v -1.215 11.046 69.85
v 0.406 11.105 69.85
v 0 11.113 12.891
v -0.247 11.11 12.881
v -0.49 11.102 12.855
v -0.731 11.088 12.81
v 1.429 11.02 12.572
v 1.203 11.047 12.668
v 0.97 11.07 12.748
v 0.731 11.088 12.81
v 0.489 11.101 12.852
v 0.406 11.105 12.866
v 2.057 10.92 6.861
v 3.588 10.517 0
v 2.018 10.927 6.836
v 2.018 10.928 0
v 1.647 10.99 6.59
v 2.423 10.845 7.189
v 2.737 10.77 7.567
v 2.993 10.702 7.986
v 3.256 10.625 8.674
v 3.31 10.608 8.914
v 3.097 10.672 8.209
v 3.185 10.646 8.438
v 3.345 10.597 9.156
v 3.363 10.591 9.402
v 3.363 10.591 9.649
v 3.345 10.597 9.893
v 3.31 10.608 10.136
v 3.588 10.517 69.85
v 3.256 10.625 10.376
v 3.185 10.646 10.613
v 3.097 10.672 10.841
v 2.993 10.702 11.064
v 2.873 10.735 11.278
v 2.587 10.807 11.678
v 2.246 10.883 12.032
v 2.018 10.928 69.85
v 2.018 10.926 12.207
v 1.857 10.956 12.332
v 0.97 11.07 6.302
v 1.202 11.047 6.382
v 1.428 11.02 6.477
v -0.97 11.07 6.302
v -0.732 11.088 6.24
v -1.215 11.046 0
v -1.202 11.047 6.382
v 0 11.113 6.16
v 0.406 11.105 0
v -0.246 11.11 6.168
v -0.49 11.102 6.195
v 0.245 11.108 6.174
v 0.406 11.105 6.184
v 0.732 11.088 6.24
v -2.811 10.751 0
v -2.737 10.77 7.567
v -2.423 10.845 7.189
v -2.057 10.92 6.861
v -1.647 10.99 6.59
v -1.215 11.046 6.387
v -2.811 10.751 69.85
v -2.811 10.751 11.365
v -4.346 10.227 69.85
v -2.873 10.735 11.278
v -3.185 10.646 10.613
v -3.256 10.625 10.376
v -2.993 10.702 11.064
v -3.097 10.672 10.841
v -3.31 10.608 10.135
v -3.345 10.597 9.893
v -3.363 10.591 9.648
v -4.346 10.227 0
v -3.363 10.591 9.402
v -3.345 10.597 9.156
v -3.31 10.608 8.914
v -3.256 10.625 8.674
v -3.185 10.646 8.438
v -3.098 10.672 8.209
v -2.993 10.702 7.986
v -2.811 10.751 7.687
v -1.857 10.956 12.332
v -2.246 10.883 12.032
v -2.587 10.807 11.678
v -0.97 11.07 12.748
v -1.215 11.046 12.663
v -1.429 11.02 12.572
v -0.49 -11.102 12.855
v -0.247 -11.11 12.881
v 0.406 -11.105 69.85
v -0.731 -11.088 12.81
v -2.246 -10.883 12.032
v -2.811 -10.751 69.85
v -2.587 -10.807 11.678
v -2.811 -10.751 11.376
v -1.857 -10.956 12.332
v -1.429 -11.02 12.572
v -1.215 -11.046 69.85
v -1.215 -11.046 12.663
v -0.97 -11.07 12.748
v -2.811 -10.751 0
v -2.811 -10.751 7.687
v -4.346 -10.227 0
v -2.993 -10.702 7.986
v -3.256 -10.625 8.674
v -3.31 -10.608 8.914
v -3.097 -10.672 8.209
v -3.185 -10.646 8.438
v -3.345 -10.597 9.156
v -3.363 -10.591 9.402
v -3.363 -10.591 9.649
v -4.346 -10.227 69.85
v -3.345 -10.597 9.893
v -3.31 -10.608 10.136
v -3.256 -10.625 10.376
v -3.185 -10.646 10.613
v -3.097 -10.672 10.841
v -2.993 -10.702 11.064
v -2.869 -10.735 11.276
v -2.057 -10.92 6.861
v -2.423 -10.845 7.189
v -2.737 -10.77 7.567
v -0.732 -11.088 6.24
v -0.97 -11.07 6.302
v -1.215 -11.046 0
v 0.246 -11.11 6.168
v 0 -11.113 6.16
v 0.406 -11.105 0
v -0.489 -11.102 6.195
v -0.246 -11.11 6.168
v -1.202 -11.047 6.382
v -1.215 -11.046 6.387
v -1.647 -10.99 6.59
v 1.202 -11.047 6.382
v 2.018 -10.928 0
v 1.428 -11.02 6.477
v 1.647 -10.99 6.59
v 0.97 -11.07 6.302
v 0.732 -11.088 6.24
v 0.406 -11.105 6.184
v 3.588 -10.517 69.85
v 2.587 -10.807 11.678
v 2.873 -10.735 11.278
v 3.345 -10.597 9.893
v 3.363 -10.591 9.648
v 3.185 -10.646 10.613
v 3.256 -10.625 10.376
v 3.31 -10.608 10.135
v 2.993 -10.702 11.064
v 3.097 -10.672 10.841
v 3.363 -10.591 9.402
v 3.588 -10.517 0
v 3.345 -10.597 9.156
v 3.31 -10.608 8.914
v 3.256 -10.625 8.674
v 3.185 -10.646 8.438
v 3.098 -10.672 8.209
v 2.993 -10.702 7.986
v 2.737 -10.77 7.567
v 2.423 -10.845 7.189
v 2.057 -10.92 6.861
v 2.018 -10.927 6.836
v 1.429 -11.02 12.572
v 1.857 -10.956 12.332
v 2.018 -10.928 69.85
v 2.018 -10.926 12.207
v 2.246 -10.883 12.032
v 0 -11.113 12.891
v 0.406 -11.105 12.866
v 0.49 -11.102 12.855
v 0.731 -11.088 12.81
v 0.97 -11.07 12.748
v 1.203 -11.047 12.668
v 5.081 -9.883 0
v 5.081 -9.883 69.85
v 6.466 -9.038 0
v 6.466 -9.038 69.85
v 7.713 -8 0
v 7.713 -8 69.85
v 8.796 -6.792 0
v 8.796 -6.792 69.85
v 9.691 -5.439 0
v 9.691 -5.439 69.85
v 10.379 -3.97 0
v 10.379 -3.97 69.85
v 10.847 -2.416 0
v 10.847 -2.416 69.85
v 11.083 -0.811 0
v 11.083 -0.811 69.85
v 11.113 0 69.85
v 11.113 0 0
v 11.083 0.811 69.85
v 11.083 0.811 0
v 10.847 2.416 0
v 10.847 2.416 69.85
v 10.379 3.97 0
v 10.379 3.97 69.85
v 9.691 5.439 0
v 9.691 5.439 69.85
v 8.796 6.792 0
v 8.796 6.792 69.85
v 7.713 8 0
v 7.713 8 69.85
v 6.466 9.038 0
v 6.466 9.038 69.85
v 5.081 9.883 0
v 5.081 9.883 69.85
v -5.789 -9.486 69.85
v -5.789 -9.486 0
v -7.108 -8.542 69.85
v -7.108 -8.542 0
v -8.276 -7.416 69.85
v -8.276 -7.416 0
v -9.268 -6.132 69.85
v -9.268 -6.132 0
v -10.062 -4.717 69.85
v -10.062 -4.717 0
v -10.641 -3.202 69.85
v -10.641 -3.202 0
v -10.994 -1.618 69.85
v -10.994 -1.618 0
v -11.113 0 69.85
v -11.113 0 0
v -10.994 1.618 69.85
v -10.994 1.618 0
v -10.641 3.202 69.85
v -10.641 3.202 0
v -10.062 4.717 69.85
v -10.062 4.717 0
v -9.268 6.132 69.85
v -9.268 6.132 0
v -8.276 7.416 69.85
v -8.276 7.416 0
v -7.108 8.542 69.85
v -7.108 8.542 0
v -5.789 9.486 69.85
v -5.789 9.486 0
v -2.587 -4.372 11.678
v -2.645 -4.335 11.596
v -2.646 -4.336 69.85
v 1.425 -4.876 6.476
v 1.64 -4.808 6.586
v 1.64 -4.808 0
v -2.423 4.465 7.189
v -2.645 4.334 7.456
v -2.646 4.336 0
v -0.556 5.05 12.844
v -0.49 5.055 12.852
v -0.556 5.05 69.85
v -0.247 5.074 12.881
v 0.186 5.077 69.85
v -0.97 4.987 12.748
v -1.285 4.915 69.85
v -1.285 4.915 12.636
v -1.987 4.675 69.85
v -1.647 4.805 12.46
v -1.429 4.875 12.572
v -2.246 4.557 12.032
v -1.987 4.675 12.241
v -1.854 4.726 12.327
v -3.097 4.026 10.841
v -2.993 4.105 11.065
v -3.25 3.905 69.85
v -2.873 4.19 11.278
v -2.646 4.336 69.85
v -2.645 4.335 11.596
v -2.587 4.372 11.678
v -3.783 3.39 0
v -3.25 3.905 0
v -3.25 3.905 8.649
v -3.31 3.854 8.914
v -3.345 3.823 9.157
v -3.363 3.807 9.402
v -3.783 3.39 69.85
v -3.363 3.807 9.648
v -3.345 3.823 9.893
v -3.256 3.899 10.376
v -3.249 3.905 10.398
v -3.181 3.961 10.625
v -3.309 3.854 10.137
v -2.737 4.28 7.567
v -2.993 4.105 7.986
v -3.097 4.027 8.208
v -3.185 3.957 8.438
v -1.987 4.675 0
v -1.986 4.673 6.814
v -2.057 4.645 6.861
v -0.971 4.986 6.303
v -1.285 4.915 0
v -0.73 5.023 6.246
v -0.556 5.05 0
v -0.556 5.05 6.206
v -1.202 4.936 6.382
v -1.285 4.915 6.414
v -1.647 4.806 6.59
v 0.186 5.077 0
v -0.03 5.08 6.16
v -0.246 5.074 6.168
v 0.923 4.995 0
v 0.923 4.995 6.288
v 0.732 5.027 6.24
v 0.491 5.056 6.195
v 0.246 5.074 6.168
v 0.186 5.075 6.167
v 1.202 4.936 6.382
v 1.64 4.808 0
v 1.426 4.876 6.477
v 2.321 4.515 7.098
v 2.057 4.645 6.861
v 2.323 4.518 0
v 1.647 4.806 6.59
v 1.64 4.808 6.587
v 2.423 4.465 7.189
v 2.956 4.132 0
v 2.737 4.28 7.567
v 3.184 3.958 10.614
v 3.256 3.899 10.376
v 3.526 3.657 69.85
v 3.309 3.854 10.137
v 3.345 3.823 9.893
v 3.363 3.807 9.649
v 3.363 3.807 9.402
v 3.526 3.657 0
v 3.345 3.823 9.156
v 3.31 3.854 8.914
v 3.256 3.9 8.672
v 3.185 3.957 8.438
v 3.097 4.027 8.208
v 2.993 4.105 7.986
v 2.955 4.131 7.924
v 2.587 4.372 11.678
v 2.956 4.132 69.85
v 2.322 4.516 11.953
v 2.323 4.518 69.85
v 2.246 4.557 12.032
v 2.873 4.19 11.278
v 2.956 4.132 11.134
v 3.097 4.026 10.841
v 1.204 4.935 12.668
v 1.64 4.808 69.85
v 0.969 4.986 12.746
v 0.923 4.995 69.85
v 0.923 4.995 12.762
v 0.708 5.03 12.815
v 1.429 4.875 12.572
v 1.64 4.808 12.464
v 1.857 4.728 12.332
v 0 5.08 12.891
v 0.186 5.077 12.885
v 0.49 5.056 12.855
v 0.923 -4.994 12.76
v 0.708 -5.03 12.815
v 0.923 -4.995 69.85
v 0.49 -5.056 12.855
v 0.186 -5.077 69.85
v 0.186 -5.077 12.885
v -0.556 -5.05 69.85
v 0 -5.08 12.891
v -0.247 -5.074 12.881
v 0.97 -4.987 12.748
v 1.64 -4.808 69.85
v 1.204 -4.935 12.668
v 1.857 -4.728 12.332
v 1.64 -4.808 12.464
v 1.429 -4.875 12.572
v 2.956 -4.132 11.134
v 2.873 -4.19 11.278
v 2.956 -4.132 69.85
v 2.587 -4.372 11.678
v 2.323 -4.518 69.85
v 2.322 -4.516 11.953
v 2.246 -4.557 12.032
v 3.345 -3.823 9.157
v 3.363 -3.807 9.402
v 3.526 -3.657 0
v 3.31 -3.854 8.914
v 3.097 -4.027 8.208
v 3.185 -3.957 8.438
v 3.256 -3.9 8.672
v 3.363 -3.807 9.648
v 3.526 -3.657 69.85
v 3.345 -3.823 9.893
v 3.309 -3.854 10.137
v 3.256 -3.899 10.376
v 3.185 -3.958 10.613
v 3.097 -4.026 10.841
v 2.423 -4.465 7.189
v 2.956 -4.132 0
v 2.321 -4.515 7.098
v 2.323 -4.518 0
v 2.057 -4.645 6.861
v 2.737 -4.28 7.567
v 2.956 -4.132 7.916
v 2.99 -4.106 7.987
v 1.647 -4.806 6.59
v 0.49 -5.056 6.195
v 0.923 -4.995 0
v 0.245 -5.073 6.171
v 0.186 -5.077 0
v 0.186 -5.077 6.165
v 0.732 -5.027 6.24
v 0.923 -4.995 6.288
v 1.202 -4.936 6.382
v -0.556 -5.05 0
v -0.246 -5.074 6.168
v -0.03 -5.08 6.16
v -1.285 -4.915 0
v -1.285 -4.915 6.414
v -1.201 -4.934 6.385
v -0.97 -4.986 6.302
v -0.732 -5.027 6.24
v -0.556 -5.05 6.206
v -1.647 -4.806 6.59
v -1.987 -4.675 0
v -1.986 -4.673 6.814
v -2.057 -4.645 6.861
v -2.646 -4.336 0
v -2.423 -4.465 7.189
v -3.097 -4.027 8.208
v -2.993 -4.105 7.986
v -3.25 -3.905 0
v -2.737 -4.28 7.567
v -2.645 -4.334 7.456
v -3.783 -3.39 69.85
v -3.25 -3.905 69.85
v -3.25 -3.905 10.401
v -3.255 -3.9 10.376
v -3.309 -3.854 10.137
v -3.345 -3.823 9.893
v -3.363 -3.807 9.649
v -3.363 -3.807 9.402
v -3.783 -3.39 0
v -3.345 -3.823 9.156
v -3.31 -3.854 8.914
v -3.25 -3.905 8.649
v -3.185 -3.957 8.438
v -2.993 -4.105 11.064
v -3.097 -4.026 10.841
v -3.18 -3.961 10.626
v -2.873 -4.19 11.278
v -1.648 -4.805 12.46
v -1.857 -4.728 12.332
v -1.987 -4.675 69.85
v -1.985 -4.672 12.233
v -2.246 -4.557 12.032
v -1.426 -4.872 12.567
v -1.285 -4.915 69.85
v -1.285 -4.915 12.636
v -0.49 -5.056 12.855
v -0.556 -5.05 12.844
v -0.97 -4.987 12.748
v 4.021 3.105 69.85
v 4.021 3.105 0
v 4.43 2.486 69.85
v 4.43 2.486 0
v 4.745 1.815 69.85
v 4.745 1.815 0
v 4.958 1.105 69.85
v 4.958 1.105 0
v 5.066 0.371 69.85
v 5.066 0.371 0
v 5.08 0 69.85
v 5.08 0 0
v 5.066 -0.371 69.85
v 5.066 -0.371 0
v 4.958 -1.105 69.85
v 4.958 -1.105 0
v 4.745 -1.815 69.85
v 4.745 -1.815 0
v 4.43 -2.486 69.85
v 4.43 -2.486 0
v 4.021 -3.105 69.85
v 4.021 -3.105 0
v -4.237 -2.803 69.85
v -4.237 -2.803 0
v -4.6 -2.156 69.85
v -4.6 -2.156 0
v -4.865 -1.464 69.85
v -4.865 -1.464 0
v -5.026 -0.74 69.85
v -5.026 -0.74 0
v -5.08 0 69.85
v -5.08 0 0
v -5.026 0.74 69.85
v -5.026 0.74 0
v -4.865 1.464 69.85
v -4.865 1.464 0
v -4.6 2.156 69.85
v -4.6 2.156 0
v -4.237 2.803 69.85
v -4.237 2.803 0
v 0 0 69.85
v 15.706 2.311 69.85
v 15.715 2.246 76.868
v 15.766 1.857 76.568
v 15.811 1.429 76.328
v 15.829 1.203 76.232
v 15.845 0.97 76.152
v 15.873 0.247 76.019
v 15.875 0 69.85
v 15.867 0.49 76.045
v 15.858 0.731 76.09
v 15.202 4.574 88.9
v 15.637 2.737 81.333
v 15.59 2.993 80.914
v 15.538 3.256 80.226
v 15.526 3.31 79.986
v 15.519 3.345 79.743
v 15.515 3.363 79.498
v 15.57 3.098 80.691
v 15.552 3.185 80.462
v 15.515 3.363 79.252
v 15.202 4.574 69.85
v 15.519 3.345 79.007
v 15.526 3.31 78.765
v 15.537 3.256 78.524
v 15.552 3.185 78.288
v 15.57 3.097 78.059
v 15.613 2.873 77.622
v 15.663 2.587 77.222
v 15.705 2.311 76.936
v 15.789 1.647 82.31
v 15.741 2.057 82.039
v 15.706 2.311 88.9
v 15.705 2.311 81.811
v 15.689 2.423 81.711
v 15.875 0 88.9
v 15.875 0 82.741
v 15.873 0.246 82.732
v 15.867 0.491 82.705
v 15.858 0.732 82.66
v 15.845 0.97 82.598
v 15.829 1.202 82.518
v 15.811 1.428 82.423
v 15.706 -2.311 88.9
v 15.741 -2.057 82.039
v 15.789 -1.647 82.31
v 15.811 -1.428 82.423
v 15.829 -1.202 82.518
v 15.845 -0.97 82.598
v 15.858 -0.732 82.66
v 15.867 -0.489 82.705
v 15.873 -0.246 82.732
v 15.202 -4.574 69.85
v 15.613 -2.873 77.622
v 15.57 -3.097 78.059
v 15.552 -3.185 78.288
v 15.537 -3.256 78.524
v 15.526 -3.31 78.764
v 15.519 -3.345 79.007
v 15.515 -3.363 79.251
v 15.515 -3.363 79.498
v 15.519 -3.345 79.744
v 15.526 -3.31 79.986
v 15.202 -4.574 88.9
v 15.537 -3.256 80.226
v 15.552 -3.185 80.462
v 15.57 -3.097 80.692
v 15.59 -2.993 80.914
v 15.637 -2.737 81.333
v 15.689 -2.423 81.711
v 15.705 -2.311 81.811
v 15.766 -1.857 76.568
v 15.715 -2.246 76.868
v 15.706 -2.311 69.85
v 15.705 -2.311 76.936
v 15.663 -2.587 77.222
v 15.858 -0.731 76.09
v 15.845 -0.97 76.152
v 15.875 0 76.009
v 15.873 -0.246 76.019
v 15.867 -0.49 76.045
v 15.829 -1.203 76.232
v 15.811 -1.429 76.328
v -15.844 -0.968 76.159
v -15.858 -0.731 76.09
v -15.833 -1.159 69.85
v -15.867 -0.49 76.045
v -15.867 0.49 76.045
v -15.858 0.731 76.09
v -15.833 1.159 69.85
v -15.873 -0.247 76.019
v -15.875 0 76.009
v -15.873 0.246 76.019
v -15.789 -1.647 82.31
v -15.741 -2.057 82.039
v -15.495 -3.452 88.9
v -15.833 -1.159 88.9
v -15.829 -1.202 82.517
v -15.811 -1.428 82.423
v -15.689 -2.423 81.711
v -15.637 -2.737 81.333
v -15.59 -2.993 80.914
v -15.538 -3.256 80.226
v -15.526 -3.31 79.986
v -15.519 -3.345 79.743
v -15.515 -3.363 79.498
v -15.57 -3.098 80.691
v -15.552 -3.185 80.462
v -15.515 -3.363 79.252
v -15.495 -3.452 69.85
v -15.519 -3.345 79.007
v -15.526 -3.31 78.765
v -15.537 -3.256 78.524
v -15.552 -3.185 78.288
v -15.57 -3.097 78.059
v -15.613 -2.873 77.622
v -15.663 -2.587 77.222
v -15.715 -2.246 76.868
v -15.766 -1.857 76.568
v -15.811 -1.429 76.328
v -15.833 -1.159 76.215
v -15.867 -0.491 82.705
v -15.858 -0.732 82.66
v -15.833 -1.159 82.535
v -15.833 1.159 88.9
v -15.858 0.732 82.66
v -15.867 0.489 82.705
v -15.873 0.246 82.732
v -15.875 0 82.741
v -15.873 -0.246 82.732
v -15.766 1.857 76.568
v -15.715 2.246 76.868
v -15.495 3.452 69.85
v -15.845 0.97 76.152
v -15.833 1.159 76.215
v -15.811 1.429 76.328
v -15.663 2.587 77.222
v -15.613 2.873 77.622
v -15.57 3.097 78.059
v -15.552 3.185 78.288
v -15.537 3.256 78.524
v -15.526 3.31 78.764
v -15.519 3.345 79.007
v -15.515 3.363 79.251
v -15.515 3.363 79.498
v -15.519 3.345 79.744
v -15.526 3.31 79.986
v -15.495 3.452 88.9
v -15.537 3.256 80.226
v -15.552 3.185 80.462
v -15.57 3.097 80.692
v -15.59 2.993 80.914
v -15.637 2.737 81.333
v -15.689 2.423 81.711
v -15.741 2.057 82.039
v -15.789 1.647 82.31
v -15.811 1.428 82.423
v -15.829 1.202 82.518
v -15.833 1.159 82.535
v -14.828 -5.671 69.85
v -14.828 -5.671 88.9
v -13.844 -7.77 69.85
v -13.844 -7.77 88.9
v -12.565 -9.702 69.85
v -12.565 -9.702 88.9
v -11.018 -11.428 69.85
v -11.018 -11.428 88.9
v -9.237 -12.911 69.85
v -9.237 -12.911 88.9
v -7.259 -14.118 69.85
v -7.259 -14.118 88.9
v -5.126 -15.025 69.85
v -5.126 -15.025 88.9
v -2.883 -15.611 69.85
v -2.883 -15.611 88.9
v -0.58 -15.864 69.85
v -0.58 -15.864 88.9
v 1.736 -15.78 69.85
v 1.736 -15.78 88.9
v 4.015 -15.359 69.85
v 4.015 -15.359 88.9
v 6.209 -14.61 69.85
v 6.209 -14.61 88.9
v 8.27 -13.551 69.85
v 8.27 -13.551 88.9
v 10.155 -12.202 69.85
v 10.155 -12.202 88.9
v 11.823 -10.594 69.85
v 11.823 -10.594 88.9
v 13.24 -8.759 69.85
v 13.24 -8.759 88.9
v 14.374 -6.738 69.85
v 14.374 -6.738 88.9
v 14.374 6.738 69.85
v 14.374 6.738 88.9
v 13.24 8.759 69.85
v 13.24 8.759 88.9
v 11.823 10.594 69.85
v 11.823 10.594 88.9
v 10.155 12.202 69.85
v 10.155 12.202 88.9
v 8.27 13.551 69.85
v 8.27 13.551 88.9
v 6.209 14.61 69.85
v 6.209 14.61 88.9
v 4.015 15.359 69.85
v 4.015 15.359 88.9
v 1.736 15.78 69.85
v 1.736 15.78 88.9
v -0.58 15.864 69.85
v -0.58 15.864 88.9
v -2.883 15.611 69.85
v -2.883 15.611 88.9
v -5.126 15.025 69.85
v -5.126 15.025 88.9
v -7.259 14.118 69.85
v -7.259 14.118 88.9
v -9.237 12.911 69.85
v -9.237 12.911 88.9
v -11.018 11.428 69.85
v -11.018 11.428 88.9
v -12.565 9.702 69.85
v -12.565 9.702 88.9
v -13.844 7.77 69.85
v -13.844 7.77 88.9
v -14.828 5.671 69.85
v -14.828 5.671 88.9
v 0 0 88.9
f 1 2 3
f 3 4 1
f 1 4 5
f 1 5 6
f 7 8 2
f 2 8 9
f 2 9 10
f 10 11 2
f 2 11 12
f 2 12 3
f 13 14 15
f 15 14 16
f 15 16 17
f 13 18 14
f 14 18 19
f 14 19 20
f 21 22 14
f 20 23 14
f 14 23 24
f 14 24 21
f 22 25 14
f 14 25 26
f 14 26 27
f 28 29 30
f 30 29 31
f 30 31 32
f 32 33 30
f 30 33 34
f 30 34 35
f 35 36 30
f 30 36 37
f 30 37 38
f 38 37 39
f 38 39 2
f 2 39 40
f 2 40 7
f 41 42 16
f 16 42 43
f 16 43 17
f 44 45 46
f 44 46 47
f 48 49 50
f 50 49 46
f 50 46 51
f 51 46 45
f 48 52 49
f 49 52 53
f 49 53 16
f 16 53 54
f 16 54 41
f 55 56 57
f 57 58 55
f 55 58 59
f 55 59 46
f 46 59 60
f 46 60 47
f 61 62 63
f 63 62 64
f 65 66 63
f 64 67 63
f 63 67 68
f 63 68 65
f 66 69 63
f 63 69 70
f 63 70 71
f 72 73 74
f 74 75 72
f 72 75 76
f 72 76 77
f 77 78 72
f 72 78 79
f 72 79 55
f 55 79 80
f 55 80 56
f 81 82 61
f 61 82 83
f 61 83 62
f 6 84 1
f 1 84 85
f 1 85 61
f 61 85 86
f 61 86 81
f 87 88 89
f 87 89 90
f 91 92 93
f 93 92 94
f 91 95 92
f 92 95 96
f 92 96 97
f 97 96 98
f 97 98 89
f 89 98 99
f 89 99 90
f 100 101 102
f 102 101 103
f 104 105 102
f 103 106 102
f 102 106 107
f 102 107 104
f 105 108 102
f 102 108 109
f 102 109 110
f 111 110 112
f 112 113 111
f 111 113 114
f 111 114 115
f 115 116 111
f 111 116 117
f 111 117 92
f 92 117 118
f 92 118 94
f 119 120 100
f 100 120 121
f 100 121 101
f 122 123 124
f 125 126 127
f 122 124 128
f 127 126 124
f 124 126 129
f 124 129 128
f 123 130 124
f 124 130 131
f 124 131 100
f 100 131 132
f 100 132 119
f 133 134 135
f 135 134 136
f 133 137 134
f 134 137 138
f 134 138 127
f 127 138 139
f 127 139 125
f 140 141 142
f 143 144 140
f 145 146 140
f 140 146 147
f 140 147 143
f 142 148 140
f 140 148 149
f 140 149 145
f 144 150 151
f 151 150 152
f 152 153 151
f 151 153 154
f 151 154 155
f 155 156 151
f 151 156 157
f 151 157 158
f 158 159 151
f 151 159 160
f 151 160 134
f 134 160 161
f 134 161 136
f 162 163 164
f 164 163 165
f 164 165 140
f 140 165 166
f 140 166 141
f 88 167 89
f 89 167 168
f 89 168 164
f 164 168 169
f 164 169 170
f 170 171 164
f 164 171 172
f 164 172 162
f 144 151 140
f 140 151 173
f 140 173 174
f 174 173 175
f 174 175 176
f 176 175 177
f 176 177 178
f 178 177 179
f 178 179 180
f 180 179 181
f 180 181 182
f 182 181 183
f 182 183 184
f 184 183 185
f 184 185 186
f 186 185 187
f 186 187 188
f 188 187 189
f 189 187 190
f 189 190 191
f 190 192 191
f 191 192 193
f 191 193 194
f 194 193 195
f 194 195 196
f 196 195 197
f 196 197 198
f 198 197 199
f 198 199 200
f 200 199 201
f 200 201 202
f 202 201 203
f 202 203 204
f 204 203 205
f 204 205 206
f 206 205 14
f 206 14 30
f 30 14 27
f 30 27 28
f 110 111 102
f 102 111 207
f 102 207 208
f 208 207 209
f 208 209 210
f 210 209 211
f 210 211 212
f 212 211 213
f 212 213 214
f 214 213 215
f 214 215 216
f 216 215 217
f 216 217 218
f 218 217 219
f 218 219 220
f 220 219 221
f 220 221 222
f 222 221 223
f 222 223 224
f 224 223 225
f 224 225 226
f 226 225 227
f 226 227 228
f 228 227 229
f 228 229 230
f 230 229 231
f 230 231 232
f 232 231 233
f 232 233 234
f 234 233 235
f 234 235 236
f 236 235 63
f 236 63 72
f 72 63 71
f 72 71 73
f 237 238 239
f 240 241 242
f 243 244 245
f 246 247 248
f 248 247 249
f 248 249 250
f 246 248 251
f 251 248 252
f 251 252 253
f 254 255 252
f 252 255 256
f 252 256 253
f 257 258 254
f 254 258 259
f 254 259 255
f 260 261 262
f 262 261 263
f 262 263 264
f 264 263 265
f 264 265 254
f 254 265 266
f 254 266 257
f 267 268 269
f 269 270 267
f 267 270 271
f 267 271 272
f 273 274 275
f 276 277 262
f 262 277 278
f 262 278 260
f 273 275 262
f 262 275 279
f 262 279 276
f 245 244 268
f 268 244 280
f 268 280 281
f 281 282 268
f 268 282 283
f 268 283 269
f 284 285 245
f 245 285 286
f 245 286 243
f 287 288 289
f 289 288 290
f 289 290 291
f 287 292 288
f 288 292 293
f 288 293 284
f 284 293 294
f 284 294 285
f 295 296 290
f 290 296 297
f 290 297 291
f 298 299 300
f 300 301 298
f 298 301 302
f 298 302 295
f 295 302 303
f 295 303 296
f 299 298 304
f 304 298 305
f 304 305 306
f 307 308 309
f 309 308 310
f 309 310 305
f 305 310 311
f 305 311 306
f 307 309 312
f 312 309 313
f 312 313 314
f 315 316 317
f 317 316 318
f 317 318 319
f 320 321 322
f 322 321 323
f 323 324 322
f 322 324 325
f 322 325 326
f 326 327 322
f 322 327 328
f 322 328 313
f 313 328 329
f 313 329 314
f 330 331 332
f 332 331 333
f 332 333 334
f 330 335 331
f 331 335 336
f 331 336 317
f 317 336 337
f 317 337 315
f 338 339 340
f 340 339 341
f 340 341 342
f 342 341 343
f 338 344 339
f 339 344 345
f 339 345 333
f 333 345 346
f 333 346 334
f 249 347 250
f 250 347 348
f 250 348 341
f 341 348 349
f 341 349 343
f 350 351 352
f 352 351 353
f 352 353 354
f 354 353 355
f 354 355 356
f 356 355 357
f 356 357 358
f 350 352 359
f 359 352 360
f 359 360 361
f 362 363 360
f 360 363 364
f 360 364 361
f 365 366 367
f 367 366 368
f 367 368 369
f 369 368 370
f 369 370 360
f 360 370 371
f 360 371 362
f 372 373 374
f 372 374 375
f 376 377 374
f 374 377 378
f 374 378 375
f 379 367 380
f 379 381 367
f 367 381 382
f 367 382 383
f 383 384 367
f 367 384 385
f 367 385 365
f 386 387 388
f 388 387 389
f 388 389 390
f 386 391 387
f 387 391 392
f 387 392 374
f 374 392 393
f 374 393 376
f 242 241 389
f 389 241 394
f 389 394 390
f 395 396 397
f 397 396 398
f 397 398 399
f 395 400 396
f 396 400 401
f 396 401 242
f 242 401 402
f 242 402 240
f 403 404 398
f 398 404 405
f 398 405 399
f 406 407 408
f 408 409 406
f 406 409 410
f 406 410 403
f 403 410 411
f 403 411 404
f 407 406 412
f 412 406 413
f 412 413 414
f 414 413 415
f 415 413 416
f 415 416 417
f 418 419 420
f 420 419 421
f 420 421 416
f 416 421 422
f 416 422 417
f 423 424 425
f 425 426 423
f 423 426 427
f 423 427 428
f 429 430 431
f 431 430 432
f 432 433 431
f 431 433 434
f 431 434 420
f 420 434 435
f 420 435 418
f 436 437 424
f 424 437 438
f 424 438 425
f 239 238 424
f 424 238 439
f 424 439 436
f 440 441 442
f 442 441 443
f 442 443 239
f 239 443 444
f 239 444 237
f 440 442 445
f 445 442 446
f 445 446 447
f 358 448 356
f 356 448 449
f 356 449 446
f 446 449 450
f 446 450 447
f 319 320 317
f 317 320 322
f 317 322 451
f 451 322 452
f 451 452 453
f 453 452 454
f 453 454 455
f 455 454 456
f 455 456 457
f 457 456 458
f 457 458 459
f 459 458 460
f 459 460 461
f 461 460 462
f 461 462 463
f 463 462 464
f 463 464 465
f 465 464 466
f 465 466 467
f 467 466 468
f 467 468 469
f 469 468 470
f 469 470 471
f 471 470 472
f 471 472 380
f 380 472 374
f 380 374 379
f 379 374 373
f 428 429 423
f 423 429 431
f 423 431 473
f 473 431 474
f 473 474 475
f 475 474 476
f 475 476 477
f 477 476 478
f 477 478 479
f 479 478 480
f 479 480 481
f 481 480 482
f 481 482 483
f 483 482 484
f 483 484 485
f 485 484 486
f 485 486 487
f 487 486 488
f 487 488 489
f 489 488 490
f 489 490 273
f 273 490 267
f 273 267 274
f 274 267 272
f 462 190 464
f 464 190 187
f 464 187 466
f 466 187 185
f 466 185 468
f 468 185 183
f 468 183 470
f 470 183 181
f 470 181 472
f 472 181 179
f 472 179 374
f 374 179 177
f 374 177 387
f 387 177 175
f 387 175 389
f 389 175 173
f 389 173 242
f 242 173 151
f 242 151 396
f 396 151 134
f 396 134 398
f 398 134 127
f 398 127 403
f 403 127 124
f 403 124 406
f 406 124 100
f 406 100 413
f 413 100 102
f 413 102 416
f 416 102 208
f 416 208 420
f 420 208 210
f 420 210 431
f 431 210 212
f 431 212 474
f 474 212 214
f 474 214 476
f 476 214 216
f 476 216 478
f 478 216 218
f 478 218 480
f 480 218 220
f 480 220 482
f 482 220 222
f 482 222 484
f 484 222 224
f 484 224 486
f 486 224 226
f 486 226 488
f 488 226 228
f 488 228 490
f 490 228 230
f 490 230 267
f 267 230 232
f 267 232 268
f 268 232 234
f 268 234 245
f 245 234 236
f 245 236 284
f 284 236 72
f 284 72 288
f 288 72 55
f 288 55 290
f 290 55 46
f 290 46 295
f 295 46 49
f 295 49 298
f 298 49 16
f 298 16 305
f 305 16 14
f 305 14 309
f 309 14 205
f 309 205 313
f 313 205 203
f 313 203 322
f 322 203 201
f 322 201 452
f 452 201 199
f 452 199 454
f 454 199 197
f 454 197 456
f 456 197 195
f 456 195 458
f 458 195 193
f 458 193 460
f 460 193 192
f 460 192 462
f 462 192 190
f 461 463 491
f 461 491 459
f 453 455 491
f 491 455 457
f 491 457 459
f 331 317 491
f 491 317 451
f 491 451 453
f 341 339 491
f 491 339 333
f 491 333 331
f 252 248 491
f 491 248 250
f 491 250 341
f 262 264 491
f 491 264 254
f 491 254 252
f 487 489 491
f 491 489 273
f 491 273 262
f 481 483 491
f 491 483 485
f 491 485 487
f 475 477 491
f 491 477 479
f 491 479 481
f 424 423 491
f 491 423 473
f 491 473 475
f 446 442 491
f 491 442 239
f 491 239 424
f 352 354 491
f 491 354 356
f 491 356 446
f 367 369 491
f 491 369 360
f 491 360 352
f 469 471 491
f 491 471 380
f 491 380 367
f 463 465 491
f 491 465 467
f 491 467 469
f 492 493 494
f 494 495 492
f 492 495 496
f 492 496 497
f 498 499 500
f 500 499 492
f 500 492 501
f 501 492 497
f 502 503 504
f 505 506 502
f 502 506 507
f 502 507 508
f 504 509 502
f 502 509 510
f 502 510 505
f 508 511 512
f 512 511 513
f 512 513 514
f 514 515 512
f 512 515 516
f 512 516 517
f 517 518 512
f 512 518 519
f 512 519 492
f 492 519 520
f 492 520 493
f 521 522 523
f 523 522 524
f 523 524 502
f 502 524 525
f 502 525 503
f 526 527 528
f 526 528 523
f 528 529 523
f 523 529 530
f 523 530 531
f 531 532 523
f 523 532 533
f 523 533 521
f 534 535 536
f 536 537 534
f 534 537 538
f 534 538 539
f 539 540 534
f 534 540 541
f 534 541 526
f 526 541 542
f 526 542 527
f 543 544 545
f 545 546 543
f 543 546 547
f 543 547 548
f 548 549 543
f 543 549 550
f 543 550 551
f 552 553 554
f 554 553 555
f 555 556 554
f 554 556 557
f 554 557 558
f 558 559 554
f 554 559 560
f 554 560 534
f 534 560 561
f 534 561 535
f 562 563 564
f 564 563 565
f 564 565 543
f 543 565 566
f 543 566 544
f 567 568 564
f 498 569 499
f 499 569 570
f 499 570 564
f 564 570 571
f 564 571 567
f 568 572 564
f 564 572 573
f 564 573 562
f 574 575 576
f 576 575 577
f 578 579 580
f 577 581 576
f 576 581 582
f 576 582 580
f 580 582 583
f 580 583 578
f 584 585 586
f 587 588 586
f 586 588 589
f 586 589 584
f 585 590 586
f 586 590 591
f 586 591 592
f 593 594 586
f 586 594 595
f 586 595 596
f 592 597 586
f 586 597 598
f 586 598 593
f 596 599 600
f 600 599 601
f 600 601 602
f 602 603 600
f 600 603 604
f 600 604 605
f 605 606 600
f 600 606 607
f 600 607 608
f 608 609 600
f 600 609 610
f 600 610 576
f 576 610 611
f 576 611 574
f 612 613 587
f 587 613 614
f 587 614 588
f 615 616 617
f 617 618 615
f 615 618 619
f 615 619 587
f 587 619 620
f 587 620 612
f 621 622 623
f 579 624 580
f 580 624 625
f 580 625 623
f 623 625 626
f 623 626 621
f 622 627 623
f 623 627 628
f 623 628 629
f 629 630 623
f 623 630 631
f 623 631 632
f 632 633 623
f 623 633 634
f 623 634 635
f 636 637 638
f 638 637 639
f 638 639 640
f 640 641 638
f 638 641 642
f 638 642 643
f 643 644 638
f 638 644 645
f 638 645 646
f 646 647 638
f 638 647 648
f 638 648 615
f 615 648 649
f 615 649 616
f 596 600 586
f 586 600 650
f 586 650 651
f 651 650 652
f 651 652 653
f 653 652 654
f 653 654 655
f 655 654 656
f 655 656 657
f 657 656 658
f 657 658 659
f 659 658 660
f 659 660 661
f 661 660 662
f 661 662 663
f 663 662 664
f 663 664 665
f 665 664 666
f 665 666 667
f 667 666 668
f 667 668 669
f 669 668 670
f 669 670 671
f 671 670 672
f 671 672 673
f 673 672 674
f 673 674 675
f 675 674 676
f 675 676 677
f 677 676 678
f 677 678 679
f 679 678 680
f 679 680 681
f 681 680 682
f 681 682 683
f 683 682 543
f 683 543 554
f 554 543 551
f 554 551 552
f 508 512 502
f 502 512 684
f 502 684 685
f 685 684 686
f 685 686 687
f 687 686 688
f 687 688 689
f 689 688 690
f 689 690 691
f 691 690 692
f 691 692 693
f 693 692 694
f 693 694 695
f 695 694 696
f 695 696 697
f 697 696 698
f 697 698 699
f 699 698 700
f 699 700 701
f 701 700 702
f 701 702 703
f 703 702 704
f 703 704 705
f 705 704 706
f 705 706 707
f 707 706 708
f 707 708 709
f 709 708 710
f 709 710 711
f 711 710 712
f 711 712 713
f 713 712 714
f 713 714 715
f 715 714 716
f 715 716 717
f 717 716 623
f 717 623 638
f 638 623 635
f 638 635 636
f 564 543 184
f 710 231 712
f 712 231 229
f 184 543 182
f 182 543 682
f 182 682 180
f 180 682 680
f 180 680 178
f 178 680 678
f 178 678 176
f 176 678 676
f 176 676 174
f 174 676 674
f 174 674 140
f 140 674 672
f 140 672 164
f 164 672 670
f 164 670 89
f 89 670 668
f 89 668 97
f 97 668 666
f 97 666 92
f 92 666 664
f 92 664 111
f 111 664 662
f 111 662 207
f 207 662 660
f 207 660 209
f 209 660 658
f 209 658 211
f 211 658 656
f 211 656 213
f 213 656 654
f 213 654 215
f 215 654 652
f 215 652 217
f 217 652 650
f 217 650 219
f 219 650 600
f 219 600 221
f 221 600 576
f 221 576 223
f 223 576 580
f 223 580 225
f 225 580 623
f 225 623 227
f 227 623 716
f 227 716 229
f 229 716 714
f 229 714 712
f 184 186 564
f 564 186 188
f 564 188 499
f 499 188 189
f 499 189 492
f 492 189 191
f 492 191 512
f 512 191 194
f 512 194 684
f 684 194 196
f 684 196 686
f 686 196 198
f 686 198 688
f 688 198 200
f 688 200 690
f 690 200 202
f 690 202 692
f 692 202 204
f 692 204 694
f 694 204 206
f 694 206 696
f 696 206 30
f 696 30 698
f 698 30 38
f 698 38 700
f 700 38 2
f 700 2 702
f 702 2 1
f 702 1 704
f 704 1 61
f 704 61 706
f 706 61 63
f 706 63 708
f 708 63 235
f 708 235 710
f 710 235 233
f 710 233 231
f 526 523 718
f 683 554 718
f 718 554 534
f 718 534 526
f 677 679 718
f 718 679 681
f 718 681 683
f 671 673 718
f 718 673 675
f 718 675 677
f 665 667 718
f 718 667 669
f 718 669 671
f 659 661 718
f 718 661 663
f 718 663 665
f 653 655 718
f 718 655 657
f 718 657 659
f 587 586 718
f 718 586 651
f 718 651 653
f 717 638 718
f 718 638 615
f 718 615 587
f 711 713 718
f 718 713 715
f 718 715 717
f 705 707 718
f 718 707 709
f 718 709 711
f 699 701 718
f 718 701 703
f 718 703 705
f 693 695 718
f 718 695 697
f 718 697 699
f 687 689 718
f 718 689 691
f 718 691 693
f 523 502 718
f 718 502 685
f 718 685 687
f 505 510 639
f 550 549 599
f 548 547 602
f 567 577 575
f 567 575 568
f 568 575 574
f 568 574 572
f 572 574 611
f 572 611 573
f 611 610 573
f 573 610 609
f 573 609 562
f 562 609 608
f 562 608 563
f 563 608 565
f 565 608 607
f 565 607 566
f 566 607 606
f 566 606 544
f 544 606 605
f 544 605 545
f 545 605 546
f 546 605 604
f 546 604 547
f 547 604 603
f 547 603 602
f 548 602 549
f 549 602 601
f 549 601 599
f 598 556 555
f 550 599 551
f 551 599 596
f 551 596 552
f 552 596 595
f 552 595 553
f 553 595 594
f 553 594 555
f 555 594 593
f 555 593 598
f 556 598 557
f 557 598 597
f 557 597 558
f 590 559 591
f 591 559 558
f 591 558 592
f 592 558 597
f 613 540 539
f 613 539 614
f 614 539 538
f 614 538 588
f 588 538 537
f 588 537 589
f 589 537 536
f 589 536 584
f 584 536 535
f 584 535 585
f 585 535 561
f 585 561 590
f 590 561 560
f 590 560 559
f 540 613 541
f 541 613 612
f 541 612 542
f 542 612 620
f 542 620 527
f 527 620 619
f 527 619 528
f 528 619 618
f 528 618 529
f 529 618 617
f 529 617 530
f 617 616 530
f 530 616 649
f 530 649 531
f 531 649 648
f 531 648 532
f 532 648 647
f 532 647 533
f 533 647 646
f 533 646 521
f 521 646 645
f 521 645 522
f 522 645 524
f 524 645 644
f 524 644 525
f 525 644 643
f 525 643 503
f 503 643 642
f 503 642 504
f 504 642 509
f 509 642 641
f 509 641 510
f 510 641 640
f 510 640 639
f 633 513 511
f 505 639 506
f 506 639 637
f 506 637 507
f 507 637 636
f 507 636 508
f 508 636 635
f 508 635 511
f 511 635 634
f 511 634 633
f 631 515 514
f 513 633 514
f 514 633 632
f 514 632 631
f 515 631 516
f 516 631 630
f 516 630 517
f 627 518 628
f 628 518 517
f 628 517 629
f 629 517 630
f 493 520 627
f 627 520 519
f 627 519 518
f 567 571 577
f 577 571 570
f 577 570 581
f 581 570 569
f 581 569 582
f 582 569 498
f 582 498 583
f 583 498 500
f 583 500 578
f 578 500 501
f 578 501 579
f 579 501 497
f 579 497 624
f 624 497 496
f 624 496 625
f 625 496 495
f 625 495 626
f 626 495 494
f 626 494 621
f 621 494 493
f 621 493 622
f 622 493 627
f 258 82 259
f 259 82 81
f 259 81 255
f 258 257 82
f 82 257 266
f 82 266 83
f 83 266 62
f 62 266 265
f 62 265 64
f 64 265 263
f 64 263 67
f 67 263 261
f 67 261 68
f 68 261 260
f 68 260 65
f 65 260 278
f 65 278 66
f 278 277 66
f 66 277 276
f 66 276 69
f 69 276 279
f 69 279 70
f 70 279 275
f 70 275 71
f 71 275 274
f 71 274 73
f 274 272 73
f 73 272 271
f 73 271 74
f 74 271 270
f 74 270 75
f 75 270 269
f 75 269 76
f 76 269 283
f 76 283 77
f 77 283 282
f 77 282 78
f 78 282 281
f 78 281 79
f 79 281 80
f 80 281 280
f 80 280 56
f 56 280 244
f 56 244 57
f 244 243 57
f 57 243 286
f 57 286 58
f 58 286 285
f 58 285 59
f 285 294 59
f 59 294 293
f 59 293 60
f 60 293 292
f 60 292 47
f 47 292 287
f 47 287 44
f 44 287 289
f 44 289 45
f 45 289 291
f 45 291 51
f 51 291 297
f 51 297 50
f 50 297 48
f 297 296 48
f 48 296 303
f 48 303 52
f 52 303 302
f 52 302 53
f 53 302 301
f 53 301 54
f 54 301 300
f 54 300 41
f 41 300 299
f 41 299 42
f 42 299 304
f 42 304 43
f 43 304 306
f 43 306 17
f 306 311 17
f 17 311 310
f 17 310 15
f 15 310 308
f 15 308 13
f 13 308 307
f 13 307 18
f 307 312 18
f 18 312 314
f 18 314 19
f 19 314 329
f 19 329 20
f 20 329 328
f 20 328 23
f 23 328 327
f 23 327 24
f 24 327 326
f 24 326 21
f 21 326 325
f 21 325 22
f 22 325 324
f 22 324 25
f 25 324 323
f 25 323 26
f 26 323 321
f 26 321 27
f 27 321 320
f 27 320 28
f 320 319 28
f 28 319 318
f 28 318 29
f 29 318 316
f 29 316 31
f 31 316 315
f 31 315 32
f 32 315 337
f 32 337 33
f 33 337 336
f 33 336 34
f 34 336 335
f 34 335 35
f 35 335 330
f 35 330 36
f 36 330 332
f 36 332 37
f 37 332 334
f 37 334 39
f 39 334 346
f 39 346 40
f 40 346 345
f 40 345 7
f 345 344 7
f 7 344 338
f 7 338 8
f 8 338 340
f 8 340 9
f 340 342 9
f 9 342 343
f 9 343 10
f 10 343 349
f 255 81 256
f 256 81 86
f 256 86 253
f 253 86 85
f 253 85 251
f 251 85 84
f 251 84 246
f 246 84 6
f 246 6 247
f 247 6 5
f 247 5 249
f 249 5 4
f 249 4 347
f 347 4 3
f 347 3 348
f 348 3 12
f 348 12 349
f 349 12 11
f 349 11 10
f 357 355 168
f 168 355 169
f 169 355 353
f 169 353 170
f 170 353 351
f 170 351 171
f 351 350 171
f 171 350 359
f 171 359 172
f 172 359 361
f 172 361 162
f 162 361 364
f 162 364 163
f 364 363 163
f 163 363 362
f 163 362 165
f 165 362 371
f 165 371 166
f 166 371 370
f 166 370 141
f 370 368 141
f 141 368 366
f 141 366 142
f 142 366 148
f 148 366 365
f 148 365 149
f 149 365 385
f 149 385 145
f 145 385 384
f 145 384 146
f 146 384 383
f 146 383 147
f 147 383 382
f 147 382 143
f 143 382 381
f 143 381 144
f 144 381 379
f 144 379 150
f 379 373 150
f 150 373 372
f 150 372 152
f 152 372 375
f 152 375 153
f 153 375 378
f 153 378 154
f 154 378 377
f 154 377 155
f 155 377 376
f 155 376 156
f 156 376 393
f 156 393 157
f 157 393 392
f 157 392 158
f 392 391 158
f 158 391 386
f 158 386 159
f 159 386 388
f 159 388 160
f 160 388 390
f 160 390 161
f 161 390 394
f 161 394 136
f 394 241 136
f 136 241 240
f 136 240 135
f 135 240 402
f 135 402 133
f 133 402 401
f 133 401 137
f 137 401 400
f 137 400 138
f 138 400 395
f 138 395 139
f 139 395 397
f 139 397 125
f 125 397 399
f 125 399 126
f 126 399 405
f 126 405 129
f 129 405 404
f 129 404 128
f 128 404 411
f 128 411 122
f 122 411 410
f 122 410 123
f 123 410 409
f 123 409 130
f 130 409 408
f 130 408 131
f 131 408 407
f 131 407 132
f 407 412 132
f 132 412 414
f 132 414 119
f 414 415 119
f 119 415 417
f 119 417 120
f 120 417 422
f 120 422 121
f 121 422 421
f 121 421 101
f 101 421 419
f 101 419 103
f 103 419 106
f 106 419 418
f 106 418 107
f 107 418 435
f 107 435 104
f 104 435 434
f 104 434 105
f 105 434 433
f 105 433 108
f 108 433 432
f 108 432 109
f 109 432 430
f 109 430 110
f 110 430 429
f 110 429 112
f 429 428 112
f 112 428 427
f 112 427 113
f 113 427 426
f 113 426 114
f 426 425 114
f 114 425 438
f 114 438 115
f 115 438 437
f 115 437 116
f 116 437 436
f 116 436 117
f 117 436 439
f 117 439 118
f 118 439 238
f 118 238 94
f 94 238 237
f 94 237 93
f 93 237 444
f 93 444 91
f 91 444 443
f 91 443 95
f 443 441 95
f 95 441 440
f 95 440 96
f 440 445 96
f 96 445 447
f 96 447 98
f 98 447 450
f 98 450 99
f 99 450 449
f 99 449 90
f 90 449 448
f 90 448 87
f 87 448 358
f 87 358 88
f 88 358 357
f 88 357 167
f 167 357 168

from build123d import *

# Parameters (mm, degrees)
SKETCH1_R               = 11.1125
SKETCH1_R_2             = 5.08
BOSS_EXTRUDE1_DEPTH     = 88.9
SKETCH4_R               = 15.875
BOSS_EXTRUDE2_DEPTH     = 19.05
CUT_EXTRUDE1_DEPTH      = 92.691009647
CUT_EXTRUDE1_DEPTH_BACK = 92.691009647
SKETCH5_R               = 3.3655
CUT_EXTRUDE2_DEPTH      = 92.691009778
CUT_EXTRUDE2_DEPTH_BACK = 92.691009778
SKETCH7_R               = 3.3655


with BuildPart() as part:
    # Sketch1 → Boss-Extrude1 (new body)
    with BuildSketch(Plane.XY):
        Circle(SKETCH1_R)
        Circle(SKETCH1_R_2, mode=Mode.SUBTRACT)
    extrude(amount=BOSS_EXTRUDE1_DEPTH)

    # Sketch4 → Boss-Extrude2 (add)
    with BuildSketch(Plane.XY.offset(88.9)):
        Circle(SKETCH4_R)
    extrude(amount=-BOSS_EXTRUDE2_DEPTH)

    # Sketch5 → Cut-Extrude1 (cut, two sides: drawn at the far end of the back side and taken through both)
    with BuildSketch(Plane(origin=(0, 0, 0), x_dir=(0, 0, -1), z_dir=(1, 0, 0)).offset(-CUT_EXTRUDE1_DEPTH_BACK)):
        with Locations((-79.375, 0)):
            Circle(SKETCH5_R)
    extrude(amount=CUT_EXTRUDE1_DEPTH + CUT_EXTRUDE1_DEPTH_BACK, mode=Mode.SUBTRACT)

    # Sketch7 → Cut-Extrude2 (cut, two sides: drawn at the far end of the back side and taken through both)
    with BuildSketch(Plane(origin=(0, 0, 0), x_dir=(1, 0, 0), z_dir=(0, 1, 0)).offset(-CUT_EXTRUDE2_DEPTH_BACK)):
        with Locations(Location((0, -9.525, 0), (0, 0, 270))):
            Circle(SKETCH7_R)
    extrude(amount=CUT_EXTRUDE2_DEPTH + CUT_EXTRUDE2_DEPTH_BACK, mode=Mode.SUBTRACT)


solid = part.part
